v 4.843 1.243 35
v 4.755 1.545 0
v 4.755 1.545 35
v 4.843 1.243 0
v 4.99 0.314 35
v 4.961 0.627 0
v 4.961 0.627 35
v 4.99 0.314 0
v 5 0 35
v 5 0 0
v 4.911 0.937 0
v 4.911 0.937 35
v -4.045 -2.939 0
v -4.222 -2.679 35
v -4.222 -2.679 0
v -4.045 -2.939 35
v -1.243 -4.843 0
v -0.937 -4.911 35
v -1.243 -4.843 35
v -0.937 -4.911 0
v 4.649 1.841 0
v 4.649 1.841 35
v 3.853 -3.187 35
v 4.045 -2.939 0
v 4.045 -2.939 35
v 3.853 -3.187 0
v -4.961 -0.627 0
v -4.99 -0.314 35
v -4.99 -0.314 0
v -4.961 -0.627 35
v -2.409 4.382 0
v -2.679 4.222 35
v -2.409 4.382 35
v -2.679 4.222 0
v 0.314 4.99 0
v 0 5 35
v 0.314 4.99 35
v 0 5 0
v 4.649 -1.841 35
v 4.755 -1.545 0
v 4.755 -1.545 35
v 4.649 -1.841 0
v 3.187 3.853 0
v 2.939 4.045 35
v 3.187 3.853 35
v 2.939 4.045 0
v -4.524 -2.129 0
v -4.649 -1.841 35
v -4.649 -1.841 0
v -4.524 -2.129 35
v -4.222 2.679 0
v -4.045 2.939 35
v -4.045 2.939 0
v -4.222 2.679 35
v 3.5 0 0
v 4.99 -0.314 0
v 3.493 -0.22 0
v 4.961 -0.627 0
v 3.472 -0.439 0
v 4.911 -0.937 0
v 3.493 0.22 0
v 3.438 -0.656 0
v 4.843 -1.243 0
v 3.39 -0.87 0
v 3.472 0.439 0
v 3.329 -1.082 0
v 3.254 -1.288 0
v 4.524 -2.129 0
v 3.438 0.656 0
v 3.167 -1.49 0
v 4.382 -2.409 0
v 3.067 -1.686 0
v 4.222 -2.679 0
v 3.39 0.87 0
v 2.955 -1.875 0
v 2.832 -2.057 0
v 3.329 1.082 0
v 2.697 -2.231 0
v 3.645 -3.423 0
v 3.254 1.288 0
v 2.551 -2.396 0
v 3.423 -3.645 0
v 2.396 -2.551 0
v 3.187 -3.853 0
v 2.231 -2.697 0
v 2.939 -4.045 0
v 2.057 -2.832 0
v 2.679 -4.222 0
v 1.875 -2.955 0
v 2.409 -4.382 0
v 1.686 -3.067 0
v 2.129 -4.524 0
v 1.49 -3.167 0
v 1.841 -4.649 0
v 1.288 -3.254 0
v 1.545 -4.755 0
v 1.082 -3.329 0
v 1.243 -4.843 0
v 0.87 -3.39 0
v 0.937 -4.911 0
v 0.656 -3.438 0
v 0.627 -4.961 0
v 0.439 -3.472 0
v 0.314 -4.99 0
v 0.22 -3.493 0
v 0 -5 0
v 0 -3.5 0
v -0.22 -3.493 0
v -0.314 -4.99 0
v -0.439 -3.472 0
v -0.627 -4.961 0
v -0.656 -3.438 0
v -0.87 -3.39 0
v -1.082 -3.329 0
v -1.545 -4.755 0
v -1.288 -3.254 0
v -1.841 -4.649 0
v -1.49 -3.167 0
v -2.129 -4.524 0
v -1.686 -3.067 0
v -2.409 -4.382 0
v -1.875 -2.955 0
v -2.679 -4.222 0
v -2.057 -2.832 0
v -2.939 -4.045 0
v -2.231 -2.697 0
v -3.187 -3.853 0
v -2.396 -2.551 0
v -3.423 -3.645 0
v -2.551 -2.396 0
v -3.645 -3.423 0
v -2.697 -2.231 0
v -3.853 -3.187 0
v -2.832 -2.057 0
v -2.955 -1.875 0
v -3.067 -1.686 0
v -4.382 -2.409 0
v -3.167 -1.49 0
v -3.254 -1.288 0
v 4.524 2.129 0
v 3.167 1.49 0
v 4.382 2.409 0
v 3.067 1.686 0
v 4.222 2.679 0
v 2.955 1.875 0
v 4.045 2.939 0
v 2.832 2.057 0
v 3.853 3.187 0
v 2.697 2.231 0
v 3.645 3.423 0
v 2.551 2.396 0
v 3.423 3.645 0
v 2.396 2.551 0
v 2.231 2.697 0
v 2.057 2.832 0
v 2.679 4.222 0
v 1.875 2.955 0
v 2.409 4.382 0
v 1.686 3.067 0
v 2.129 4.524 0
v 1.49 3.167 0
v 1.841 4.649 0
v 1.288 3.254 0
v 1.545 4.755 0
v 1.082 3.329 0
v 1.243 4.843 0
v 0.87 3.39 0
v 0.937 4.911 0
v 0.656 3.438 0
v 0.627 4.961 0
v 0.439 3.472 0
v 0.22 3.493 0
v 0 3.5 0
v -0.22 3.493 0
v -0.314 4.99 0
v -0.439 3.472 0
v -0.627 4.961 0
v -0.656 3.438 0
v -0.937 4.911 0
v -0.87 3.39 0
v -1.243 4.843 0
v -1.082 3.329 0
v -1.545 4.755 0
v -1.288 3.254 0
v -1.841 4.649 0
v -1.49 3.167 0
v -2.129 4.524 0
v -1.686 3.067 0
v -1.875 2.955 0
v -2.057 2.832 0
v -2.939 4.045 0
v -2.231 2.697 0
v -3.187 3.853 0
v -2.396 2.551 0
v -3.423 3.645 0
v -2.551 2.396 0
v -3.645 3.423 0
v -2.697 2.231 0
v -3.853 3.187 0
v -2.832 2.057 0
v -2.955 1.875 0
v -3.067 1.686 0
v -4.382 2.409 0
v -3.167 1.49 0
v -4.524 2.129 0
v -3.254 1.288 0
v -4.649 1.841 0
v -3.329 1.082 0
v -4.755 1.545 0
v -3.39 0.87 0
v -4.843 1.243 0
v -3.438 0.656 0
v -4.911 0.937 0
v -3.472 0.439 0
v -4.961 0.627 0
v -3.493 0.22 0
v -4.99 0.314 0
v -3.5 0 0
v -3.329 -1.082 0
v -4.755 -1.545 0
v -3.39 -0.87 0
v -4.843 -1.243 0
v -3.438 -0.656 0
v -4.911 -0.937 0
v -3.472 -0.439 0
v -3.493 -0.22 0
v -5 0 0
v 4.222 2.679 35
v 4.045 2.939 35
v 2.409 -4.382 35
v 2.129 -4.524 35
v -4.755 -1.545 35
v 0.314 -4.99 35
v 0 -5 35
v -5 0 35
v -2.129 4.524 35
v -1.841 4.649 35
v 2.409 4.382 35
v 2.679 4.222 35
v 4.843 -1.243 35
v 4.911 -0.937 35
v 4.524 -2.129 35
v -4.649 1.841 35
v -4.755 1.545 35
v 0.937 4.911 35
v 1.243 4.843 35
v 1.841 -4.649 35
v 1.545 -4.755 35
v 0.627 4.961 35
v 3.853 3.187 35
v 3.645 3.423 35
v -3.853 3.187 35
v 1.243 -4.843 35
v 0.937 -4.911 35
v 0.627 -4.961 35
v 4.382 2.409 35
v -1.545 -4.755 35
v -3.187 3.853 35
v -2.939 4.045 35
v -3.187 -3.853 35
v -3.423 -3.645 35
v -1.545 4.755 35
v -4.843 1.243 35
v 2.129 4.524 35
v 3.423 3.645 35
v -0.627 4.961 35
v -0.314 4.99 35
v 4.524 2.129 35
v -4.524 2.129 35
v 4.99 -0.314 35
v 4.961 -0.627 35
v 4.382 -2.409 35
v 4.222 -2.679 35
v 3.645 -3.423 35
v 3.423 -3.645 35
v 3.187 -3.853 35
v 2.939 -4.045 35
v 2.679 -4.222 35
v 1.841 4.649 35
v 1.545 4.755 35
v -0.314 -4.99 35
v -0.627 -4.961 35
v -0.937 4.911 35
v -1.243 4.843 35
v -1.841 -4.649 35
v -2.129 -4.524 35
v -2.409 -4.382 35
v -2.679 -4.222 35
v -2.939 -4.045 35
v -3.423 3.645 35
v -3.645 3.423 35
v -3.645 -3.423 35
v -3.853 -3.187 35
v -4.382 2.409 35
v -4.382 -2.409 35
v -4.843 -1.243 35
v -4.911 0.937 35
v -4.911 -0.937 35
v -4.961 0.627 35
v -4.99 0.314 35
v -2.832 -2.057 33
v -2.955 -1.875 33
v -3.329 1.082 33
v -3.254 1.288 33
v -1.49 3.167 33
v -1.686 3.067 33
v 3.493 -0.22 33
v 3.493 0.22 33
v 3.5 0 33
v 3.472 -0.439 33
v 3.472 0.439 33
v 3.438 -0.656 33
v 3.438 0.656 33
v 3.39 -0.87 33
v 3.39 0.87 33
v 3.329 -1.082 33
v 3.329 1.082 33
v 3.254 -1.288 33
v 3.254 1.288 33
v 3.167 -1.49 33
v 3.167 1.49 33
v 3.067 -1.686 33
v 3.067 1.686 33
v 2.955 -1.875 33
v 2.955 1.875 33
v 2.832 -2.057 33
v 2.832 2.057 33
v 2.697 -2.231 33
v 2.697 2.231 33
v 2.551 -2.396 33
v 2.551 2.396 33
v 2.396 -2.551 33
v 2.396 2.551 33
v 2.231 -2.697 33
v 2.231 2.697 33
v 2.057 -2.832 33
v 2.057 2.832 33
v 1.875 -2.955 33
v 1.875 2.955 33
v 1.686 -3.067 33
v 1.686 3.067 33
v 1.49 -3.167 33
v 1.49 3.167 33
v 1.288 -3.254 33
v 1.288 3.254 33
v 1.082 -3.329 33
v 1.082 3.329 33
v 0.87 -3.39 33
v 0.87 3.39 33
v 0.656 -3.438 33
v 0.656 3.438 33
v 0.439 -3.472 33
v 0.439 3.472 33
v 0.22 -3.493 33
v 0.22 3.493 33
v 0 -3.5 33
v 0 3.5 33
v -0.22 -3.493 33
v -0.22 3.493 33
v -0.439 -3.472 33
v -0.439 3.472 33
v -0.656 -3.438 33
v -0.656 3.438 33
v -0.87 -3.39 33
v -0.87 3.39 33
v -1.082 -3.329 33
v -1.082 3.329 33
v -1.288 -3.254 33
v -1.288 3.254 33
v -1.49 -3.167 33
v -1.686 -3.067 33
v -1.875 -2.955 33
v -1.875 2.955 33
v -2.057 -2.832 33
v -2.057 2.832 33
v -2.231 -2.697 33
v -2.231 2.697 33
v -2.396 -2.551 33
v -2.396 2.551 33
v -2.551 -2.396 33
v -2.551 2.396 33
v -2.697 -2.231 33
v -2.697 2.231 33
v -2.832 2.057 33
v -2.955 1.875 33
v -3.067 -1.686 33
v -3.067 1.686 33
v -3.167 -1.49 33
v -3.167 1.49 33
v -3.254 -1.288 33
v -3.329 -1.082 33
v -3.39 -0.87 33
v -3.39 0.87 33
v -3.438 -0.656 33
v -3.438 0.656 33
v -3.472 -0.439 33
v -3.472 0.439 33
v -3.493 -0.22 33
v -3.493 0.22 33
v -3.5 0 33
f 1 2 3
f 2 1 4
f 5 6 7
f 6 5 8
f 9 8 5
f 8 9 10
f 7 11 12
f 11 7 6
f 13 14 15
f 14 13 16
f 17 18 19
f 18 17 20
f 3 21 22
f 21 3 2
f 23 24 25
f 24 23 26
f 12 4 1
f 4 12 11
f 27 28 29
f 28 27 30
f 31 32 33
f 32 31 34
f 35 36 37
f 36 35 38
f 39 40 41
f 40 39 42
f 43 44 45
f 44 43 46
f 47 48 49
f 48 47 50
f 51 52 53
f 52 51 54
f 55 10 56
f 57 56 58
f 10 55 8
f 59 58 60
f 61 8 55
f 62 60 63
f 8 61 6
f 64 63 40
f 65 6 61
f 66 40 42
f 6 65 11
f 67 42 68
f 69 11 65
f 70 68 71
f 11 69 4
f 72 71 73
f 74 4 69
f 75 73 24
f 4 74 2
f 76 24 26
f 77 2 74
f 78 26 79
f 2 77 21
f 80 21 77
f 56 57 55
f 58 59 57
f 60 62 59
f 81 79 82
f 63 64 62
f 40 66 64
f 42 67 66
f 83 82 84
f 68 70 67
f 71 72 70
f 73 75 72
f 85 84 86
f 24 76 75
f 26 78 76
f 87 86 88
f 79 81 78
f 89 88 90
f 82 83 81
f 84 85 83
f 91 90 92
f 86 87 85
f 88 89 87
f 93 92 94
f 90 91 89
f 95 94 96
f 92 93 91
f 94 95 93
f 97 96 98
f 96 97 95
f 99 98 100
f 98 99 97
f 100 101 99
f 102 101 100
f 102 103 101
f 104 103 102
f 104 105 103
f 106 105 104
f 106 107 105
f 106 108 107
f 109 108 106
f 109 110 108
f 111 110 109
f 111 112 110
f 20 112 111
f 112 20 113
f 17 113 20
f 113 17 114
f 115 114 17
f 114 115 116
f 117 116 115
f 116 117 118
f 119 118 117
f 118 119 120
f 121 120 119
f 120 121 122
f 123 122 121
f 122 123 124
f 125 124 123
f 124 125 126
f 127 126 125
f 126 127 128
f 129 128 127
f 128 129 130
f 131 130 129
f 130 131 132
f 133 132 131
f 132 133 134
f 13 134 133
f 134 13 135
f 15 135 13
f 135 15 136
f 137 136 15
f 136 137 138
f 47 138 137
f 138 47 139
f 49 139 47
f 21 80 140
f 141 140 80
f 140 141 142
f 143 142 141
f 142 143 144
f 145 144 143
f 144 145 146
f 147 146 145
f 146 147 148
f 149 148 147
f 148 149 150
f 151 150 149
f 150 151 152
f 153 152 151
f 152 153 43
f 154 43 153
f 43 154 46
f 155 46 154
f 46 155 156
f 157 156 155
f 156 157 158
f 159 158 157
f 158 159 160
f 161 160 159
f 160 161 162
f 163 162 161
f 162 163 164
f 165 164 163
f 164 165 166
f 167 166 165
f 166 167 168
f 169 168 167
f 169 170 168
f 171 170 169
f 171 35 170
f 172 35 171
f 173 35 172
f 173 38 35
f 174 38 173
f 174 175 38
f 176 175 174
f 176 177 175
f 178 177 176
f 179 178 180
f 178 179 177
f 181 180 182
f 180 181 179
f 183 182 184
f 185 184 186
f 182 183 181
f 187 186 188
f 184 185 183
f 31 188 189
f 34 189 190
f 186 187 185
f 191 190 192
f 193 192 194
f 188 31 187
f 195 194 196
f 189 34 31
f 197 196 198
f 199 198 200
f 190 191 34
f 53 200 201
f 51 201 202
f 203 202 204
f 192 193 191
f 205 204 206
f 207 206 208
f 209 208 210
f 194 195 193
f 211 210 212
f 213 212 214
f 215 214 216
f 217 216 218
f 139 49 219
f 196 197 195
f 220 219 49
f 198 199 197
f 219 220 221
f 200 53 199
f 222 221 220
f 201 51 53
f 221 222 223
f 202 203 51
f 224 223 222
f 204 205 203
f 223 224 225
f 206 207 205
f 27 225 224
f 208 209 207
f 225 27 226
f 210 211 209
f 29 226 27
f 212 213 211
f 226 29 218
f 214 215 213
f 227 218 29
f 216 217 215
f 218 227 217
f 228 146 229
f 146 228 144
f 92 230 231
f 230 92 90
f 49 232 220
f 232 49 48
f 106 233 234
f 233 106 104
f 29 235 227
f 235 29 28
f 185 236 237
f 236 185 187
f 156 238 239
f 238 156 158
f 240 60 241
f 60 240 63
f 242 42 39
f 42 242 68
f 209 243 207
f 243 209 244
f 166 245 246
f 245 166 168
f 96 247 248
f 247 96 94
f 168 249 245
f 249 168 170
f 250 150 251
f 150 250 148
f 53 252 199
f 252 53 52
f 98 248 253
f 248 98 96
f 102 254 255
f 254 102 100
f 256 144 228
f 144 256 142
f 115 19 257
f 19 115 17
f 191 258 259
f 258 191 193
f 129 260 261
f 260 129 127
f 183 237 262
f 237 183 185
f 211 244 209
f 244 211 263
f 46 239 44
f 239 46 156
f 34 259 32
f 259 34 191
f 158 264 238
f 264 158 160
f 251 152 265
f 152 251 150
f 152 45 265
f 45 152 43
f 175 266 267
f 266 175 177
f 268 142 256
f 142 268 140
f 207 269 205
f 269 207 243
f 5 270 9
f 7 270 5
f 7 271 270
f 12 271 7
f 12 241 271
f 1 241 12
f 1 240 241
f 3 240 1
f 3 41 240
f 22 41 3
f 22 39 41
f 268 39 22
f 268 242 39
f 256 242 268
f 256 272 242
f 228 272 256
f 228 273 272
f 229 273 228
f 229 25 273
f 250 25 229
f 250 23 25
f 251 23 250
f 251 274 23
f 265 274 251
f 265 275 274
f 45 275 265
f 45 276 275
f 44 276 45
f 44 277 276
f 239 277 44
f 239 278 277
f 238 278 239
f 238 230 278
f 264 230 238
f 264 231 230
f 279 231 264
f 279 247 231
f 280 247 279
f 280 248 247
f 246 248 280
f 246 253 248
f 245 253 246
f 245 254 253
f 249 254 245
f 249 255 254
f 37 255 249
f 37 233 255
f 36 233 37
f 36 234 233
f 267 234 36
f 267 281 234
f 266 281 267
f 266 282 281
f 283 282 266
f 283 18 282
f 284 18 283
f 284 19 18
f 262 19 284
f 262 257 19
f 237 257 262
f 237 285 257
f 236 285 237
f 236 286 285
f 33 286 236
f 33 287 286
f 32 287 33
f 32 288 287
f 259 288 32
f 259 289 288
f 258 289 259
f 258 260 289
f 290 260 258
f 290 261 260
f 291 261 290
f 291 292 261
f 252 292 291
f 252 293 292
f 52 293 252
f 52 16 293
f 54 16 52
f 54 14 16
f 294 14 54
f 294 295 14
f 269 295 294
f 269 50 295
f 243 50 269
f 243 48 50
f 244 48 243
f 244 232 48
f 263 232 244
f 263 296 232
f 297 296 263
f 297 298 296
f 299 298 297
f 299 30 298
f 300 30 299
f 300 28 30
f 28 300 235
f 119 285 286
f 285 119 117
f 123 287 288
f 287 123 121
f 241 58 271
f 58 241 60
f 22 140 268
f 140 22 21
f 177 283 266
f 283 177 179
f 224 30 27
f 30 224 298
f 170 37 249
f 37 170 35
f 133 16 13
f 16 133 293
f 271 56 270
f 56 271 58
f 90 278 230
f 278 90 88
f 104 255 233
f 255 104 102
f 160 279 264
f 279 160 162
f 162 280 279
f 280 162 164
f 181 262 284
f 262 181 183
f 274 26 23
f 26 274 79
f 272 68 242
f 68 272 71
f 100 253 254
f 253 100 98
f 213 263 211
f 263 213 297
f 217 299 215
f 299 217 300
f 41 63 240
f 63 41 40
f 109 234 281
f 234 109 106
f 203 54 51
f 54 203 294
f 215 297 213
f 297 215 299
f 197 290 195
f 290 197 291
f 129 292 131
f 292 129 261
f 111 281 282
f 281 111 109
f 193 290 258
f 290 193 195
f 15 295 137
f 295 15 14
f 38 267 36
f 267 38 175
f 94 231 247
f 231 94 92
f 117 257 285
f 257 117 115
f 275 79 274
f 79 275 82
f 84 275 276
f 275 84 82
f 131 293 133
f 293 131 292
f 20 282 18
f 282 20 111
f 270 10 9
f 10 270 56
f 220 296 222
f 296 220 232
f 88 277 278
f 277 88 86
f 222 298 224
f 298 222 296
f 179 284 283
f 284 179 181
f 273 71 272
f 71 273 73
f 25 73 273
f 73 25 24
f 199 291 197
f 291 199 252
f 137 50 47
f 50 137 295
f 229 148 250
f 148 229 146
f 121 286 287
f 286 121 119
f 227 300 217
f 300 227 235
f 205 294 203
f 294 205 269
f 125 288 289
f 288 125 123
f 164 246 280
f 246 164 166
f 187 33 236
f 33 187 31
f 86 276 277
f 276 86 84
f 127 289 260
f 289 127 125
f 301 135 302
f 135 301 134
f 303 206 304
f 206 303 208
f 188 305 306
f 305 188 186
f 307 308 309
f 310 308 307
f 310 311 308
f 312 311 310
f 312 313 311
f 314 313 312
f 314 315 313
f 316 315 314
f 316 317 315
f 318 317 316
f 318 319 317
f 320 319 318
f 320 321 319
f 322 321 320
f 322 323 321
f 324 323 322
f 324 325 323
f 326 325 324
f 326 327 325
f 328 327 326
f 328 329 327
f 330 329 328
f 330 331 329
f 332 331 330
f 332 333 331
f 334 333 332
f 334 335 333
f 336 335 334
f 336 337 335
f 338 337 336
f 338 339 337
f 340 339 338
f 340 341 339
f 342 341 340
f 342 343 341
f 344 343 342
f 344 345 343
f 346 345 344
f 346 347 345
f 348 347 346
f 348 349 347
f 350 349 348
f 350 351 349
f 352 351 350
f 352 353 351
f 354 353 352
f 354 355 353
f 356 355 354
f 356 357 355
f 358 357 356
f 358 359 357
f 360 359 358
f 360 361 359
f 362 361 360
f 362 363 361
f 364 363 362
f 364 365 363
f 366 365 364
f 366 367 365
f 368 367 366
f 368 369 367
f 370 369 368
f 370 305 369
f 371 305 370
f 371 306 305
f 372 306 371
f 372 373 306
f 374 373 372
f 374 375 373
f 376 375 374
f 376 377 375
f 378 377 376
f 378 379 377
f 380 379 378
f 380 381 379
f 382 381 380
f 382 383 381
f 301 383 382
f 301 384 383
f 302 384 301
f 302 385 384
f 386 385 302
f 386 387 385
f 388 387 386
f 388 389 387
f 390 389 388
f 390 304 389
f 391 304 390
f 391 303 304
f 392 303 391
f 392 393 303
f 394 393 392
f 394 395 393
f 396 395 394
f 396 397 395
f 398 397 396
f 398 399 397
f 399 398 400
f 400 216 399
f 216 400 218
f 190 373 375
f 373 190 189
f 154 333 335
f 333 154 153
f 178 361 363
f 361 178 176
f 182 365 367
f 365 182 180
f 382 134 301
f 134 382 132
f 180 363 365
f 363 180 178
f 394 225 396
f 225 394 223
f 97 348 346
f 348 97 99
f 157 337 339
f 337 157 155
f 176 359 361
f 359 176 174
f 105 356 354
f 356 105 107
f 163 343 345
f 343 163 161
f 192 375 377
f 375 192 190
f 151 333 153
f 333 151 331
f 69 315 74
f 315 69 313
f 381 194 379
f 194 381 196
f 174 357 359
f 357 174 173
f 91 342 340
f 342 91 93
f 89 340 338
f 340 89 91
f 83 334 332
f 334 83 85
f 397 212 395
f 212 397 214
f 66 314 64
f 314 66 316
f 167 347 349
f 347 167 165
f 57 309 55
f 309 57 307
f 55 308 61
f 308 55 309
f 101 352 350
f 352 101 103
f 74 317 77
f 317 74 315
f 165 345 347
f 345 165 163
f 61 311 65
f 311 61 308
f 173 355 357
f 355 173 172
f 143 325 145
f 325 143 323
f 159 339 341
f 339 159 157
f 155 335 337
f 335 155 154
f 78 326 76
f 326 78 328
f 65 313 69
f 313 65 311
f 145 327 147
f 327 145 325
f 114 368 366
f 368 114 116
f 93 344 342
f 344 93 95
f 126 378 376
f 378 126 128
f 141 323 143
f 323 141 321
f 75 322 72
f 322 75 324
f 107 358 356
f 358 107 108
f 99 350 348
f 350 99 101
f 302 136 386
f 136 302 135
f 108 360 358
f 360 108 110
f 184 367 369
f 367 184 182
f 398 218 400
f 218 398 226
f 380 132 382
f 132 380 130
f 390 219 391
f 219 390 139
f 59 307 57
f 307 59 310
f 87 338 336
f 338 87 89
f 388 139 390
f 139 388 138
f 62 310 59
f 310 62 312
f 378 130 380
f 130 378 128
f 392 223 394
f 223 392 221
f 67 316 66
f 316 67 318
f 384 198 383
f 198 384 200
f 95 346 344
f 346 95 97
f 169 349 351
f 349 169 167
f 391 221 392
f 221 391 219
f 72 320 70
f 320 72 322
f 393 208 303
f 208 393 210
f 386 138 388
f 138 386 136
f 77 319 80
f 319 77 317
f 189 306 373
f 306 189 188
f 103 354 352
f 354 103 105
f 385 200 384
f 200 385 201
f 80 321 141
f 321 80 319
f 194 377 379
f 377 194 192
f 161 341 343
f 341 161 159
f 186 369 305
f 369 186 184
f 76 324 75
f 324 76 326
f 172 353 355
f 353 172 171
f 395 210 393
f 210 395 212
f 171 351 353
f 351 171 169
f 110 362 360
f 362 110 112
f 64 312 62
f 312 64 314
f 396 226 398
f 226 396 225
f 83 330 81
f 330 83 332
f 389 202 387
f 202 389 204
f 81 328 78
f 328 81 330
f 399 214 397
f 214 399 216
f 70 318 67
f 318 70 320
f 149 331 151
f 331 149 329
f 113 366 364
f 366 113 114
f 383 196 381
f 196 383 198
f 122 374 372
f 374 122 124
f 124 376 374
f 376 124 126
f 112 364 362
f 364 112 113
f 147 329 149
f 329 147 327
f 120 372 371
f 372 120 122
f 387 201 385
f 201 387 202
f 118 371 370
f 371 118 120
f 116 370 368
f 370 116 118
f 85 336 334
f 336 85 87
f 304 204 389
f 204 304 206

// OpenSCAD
// file: pin.scad
pin();

module pin() {
  $fn=100;
    
  difference() {
    pin_solid(0.0); 
    
    union() {
        translate([-5,0,18]) rotate([0,90,0]) cylinder (10,0.5,0.5);  
    
        translate([0,0,17]) cylinder (10,0.5,0.5);  
    }
  }
}

module pin_solid($add = 0.2) {
  $fn=100;
    union() {
        translate([0,0,1]) cylinder (20,1+$add,1+$add);    
        cylinder (1,0.5 + $add,1 + $add);       
        
        // osazeni
        translate([0,0,12]) cylinder (2,1.5+$add,1.5+$add, $fn=12); 
        rotate([0,0,15])  translate([0,0,12]) cylinder (2,1.5+$add,1.5+$add, $fn=12);   
        
        // konicky tvar
        translate([0,0,16]) cylinder (1,1.5+$add,1+$add); 
    }  
}
// main file
use <pin.scad>;
include <screw/screw_holes.scad>;

box();


module box() {
    $fn = 100;

    difference() {
         cylinder (35,5,5);  
        
         union() {
             cylinder (33,3.5,3.5);
         }
    }
    
}
